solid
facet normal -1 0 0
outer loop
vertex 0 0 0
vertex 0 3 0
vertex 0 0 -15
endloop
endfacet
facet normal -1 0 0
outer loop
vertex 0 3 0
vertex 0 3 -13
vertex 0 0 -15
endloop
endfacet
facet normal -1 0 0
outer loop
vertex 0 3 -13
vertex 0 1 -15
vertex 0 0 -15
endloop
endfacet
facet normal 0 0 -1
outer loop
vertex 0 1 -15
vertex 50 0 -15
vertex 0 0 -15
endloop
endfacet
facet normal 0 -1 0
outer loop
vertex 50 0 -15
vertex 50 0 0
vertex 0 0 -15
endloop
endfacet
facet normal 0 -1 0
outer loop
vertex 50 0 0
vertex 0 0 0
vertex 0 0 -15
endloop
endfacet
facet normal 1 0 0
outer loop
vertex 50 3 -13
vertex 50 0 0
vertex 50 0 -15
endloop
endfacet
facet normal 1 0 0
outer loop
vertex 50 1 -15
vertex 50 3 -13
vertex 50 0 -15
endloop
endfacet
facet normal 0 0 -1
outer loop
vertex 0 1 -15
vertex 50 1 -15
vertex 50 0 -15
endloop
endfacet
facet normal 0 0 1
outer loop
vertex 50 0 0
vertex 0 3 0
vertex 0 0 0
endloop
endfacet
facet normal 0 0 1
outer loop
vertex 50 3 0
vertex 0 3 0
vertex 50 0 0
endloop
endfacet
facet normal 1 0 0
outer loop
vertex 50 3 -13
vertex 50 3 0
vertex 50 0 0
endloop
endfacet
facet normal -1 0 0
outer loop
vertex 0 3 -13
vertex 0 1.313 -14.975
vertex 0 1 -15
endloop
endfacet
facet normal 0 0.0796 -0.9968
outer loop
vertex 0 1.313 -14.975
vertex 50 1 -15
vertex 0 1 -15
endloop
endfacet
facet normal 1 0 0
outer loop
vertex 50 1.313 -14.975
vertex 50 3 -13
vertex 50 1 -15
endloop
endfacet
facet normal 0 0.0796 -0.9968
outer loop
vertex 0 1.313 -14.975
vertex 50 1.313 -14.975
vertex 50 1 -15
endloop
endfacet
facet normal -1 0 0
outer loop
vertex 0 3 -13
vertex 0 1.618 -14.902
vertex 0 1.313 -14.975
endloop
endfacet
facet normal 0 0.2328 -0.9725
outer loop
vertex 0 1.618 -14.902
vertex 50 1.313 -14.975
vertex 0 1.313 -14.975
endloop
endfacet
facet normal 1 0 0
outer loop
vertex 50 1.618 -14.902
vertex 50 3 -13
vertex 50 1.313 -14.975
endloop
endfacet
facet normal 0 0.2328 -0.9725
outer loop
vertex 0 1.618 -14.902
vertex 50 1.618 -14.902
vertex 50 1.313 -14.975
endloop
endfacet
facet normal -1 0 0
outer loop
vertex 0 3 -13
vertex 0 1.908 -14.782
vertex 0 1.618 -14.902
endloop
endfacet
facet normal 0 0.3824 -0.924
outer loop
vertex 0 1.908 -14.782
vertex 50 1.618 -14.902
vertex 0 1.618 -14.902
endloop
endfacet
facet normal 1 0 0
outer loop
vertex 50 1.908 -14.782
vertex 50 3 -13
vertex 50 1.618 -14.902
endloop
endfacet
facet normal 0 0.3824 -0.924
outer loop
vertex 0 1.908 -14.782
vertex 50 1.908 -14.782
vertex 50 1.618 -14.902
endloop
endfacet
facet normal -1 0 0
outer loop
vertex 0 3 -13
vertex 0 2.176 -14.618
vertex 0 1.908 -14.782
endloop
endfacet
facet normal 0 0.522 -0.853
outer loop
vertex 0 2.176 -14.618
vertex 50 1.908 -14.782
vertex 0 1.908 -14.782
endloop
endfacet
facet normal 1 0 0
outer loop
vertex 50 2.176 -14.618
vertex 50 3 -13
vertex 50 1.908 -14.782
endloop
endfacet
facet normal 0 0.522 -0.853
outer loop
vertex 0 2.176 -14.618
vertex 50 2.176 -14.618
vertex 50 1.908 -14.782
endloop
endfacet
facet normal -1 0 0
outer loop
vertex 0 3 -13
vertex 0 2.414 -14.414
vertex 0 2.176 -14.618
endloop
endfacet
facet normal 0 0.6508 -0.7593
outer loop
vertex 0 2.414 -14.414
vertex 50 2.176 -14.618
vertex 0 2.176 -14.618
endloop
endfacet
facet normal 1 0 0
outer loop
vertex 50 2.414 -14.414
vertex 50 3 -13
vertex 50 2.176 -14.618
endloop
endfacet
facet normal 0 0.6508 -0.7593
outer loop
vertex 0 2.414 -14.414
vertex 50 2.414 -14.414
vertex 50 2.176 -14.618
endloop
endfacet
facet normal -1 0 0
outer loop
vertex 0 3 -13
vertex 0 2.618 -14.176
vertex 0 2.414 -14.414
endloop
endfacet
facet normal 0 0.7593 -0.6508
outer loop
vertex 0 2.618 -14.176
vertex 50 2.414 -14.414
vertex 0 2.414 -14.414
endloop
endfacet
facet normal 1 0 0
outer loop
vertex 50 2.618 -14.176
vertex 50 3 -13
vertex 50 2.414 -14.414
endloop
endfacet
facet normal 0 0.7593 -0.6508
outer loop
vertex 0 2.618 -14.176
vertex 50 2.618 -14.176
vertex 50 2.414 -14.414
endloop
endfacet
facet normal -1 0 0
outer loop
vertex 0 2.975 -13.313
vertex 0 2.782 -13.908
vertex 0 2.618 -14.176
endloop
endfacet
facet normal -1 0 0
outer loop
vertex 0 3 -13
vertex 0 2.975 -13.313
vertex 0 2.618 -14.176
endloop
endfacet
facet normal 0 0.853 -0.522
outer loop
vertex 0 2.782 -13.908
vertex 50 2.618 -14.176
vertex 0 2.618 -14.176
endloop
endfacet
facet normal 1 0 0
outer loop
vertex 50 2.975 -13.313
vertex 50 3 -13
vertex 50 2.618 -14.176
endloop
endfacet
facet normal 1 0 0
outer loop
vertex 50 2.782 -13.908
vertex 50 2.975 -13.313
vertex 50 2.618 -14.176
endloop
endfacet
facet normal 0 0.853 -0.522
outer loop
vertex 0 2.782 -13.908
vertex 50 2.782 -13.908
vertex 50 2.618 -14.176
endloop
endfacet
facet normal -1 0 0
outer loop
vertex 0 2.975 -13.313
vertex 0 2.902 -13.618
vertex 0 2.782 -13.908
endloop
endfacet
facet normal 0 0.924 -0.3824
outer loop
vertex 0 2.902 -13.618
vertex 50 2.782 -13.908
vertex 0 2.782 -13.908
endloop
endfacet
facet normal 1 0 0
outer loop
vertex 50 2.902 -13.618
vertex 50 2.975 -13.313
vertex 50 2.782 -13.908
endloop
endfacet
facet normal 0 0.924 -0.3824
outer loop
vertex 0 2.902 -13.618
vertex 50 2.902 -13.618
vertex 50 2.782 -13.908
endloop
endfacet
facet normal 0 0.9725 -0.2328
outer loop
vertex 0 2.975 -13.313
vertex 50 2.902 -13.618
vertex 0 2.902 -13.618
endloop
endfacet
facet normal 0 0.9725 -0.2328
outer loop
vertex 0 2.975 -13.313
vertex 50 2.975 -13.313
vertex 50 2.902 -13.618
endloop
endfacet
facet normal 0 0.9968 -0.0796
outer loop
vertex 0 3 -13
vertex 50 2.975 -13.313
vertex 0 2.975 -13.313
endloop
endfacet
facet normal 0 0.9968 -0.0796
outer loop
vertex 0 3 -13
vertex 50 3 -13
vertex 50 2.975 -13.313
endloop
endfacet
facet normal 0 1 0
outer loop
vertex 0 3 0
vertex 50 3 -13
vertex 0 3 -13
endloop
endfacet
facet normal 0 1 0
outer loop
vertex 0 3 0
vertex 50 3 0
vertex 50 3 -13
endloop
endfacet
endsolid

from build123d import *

# Parameters (mm, degrees)
SKETCH1_W           = 50
SKETCH1_H           = 15
BOSS_EXTRUDE1_DEPTH = 3
FILLET2_R           = 2


with BuildPart() as part:
    # Sketch1 → Boss-Extrude1 (new body)
    with BuildSketch(Plane(origin=(0, 0, 0), x_dir=(1, 0, 0), z_dir=(0, 1, 0))):
        with Locations((25, 7.5)):
            Rectangle(SKETCH1_W, SKETCH1_H)
    extrude(amount=BOSS_EXTRUDE1_DEPTH)

    # Fillet2
    fillet2_edges = [part.edges().sort_by_distance(p)[0] for p in [
        (25, 3, -15),
    ]]
    fillet(fillet2_edges, radius=FILLET2_R)


solid = part.part
